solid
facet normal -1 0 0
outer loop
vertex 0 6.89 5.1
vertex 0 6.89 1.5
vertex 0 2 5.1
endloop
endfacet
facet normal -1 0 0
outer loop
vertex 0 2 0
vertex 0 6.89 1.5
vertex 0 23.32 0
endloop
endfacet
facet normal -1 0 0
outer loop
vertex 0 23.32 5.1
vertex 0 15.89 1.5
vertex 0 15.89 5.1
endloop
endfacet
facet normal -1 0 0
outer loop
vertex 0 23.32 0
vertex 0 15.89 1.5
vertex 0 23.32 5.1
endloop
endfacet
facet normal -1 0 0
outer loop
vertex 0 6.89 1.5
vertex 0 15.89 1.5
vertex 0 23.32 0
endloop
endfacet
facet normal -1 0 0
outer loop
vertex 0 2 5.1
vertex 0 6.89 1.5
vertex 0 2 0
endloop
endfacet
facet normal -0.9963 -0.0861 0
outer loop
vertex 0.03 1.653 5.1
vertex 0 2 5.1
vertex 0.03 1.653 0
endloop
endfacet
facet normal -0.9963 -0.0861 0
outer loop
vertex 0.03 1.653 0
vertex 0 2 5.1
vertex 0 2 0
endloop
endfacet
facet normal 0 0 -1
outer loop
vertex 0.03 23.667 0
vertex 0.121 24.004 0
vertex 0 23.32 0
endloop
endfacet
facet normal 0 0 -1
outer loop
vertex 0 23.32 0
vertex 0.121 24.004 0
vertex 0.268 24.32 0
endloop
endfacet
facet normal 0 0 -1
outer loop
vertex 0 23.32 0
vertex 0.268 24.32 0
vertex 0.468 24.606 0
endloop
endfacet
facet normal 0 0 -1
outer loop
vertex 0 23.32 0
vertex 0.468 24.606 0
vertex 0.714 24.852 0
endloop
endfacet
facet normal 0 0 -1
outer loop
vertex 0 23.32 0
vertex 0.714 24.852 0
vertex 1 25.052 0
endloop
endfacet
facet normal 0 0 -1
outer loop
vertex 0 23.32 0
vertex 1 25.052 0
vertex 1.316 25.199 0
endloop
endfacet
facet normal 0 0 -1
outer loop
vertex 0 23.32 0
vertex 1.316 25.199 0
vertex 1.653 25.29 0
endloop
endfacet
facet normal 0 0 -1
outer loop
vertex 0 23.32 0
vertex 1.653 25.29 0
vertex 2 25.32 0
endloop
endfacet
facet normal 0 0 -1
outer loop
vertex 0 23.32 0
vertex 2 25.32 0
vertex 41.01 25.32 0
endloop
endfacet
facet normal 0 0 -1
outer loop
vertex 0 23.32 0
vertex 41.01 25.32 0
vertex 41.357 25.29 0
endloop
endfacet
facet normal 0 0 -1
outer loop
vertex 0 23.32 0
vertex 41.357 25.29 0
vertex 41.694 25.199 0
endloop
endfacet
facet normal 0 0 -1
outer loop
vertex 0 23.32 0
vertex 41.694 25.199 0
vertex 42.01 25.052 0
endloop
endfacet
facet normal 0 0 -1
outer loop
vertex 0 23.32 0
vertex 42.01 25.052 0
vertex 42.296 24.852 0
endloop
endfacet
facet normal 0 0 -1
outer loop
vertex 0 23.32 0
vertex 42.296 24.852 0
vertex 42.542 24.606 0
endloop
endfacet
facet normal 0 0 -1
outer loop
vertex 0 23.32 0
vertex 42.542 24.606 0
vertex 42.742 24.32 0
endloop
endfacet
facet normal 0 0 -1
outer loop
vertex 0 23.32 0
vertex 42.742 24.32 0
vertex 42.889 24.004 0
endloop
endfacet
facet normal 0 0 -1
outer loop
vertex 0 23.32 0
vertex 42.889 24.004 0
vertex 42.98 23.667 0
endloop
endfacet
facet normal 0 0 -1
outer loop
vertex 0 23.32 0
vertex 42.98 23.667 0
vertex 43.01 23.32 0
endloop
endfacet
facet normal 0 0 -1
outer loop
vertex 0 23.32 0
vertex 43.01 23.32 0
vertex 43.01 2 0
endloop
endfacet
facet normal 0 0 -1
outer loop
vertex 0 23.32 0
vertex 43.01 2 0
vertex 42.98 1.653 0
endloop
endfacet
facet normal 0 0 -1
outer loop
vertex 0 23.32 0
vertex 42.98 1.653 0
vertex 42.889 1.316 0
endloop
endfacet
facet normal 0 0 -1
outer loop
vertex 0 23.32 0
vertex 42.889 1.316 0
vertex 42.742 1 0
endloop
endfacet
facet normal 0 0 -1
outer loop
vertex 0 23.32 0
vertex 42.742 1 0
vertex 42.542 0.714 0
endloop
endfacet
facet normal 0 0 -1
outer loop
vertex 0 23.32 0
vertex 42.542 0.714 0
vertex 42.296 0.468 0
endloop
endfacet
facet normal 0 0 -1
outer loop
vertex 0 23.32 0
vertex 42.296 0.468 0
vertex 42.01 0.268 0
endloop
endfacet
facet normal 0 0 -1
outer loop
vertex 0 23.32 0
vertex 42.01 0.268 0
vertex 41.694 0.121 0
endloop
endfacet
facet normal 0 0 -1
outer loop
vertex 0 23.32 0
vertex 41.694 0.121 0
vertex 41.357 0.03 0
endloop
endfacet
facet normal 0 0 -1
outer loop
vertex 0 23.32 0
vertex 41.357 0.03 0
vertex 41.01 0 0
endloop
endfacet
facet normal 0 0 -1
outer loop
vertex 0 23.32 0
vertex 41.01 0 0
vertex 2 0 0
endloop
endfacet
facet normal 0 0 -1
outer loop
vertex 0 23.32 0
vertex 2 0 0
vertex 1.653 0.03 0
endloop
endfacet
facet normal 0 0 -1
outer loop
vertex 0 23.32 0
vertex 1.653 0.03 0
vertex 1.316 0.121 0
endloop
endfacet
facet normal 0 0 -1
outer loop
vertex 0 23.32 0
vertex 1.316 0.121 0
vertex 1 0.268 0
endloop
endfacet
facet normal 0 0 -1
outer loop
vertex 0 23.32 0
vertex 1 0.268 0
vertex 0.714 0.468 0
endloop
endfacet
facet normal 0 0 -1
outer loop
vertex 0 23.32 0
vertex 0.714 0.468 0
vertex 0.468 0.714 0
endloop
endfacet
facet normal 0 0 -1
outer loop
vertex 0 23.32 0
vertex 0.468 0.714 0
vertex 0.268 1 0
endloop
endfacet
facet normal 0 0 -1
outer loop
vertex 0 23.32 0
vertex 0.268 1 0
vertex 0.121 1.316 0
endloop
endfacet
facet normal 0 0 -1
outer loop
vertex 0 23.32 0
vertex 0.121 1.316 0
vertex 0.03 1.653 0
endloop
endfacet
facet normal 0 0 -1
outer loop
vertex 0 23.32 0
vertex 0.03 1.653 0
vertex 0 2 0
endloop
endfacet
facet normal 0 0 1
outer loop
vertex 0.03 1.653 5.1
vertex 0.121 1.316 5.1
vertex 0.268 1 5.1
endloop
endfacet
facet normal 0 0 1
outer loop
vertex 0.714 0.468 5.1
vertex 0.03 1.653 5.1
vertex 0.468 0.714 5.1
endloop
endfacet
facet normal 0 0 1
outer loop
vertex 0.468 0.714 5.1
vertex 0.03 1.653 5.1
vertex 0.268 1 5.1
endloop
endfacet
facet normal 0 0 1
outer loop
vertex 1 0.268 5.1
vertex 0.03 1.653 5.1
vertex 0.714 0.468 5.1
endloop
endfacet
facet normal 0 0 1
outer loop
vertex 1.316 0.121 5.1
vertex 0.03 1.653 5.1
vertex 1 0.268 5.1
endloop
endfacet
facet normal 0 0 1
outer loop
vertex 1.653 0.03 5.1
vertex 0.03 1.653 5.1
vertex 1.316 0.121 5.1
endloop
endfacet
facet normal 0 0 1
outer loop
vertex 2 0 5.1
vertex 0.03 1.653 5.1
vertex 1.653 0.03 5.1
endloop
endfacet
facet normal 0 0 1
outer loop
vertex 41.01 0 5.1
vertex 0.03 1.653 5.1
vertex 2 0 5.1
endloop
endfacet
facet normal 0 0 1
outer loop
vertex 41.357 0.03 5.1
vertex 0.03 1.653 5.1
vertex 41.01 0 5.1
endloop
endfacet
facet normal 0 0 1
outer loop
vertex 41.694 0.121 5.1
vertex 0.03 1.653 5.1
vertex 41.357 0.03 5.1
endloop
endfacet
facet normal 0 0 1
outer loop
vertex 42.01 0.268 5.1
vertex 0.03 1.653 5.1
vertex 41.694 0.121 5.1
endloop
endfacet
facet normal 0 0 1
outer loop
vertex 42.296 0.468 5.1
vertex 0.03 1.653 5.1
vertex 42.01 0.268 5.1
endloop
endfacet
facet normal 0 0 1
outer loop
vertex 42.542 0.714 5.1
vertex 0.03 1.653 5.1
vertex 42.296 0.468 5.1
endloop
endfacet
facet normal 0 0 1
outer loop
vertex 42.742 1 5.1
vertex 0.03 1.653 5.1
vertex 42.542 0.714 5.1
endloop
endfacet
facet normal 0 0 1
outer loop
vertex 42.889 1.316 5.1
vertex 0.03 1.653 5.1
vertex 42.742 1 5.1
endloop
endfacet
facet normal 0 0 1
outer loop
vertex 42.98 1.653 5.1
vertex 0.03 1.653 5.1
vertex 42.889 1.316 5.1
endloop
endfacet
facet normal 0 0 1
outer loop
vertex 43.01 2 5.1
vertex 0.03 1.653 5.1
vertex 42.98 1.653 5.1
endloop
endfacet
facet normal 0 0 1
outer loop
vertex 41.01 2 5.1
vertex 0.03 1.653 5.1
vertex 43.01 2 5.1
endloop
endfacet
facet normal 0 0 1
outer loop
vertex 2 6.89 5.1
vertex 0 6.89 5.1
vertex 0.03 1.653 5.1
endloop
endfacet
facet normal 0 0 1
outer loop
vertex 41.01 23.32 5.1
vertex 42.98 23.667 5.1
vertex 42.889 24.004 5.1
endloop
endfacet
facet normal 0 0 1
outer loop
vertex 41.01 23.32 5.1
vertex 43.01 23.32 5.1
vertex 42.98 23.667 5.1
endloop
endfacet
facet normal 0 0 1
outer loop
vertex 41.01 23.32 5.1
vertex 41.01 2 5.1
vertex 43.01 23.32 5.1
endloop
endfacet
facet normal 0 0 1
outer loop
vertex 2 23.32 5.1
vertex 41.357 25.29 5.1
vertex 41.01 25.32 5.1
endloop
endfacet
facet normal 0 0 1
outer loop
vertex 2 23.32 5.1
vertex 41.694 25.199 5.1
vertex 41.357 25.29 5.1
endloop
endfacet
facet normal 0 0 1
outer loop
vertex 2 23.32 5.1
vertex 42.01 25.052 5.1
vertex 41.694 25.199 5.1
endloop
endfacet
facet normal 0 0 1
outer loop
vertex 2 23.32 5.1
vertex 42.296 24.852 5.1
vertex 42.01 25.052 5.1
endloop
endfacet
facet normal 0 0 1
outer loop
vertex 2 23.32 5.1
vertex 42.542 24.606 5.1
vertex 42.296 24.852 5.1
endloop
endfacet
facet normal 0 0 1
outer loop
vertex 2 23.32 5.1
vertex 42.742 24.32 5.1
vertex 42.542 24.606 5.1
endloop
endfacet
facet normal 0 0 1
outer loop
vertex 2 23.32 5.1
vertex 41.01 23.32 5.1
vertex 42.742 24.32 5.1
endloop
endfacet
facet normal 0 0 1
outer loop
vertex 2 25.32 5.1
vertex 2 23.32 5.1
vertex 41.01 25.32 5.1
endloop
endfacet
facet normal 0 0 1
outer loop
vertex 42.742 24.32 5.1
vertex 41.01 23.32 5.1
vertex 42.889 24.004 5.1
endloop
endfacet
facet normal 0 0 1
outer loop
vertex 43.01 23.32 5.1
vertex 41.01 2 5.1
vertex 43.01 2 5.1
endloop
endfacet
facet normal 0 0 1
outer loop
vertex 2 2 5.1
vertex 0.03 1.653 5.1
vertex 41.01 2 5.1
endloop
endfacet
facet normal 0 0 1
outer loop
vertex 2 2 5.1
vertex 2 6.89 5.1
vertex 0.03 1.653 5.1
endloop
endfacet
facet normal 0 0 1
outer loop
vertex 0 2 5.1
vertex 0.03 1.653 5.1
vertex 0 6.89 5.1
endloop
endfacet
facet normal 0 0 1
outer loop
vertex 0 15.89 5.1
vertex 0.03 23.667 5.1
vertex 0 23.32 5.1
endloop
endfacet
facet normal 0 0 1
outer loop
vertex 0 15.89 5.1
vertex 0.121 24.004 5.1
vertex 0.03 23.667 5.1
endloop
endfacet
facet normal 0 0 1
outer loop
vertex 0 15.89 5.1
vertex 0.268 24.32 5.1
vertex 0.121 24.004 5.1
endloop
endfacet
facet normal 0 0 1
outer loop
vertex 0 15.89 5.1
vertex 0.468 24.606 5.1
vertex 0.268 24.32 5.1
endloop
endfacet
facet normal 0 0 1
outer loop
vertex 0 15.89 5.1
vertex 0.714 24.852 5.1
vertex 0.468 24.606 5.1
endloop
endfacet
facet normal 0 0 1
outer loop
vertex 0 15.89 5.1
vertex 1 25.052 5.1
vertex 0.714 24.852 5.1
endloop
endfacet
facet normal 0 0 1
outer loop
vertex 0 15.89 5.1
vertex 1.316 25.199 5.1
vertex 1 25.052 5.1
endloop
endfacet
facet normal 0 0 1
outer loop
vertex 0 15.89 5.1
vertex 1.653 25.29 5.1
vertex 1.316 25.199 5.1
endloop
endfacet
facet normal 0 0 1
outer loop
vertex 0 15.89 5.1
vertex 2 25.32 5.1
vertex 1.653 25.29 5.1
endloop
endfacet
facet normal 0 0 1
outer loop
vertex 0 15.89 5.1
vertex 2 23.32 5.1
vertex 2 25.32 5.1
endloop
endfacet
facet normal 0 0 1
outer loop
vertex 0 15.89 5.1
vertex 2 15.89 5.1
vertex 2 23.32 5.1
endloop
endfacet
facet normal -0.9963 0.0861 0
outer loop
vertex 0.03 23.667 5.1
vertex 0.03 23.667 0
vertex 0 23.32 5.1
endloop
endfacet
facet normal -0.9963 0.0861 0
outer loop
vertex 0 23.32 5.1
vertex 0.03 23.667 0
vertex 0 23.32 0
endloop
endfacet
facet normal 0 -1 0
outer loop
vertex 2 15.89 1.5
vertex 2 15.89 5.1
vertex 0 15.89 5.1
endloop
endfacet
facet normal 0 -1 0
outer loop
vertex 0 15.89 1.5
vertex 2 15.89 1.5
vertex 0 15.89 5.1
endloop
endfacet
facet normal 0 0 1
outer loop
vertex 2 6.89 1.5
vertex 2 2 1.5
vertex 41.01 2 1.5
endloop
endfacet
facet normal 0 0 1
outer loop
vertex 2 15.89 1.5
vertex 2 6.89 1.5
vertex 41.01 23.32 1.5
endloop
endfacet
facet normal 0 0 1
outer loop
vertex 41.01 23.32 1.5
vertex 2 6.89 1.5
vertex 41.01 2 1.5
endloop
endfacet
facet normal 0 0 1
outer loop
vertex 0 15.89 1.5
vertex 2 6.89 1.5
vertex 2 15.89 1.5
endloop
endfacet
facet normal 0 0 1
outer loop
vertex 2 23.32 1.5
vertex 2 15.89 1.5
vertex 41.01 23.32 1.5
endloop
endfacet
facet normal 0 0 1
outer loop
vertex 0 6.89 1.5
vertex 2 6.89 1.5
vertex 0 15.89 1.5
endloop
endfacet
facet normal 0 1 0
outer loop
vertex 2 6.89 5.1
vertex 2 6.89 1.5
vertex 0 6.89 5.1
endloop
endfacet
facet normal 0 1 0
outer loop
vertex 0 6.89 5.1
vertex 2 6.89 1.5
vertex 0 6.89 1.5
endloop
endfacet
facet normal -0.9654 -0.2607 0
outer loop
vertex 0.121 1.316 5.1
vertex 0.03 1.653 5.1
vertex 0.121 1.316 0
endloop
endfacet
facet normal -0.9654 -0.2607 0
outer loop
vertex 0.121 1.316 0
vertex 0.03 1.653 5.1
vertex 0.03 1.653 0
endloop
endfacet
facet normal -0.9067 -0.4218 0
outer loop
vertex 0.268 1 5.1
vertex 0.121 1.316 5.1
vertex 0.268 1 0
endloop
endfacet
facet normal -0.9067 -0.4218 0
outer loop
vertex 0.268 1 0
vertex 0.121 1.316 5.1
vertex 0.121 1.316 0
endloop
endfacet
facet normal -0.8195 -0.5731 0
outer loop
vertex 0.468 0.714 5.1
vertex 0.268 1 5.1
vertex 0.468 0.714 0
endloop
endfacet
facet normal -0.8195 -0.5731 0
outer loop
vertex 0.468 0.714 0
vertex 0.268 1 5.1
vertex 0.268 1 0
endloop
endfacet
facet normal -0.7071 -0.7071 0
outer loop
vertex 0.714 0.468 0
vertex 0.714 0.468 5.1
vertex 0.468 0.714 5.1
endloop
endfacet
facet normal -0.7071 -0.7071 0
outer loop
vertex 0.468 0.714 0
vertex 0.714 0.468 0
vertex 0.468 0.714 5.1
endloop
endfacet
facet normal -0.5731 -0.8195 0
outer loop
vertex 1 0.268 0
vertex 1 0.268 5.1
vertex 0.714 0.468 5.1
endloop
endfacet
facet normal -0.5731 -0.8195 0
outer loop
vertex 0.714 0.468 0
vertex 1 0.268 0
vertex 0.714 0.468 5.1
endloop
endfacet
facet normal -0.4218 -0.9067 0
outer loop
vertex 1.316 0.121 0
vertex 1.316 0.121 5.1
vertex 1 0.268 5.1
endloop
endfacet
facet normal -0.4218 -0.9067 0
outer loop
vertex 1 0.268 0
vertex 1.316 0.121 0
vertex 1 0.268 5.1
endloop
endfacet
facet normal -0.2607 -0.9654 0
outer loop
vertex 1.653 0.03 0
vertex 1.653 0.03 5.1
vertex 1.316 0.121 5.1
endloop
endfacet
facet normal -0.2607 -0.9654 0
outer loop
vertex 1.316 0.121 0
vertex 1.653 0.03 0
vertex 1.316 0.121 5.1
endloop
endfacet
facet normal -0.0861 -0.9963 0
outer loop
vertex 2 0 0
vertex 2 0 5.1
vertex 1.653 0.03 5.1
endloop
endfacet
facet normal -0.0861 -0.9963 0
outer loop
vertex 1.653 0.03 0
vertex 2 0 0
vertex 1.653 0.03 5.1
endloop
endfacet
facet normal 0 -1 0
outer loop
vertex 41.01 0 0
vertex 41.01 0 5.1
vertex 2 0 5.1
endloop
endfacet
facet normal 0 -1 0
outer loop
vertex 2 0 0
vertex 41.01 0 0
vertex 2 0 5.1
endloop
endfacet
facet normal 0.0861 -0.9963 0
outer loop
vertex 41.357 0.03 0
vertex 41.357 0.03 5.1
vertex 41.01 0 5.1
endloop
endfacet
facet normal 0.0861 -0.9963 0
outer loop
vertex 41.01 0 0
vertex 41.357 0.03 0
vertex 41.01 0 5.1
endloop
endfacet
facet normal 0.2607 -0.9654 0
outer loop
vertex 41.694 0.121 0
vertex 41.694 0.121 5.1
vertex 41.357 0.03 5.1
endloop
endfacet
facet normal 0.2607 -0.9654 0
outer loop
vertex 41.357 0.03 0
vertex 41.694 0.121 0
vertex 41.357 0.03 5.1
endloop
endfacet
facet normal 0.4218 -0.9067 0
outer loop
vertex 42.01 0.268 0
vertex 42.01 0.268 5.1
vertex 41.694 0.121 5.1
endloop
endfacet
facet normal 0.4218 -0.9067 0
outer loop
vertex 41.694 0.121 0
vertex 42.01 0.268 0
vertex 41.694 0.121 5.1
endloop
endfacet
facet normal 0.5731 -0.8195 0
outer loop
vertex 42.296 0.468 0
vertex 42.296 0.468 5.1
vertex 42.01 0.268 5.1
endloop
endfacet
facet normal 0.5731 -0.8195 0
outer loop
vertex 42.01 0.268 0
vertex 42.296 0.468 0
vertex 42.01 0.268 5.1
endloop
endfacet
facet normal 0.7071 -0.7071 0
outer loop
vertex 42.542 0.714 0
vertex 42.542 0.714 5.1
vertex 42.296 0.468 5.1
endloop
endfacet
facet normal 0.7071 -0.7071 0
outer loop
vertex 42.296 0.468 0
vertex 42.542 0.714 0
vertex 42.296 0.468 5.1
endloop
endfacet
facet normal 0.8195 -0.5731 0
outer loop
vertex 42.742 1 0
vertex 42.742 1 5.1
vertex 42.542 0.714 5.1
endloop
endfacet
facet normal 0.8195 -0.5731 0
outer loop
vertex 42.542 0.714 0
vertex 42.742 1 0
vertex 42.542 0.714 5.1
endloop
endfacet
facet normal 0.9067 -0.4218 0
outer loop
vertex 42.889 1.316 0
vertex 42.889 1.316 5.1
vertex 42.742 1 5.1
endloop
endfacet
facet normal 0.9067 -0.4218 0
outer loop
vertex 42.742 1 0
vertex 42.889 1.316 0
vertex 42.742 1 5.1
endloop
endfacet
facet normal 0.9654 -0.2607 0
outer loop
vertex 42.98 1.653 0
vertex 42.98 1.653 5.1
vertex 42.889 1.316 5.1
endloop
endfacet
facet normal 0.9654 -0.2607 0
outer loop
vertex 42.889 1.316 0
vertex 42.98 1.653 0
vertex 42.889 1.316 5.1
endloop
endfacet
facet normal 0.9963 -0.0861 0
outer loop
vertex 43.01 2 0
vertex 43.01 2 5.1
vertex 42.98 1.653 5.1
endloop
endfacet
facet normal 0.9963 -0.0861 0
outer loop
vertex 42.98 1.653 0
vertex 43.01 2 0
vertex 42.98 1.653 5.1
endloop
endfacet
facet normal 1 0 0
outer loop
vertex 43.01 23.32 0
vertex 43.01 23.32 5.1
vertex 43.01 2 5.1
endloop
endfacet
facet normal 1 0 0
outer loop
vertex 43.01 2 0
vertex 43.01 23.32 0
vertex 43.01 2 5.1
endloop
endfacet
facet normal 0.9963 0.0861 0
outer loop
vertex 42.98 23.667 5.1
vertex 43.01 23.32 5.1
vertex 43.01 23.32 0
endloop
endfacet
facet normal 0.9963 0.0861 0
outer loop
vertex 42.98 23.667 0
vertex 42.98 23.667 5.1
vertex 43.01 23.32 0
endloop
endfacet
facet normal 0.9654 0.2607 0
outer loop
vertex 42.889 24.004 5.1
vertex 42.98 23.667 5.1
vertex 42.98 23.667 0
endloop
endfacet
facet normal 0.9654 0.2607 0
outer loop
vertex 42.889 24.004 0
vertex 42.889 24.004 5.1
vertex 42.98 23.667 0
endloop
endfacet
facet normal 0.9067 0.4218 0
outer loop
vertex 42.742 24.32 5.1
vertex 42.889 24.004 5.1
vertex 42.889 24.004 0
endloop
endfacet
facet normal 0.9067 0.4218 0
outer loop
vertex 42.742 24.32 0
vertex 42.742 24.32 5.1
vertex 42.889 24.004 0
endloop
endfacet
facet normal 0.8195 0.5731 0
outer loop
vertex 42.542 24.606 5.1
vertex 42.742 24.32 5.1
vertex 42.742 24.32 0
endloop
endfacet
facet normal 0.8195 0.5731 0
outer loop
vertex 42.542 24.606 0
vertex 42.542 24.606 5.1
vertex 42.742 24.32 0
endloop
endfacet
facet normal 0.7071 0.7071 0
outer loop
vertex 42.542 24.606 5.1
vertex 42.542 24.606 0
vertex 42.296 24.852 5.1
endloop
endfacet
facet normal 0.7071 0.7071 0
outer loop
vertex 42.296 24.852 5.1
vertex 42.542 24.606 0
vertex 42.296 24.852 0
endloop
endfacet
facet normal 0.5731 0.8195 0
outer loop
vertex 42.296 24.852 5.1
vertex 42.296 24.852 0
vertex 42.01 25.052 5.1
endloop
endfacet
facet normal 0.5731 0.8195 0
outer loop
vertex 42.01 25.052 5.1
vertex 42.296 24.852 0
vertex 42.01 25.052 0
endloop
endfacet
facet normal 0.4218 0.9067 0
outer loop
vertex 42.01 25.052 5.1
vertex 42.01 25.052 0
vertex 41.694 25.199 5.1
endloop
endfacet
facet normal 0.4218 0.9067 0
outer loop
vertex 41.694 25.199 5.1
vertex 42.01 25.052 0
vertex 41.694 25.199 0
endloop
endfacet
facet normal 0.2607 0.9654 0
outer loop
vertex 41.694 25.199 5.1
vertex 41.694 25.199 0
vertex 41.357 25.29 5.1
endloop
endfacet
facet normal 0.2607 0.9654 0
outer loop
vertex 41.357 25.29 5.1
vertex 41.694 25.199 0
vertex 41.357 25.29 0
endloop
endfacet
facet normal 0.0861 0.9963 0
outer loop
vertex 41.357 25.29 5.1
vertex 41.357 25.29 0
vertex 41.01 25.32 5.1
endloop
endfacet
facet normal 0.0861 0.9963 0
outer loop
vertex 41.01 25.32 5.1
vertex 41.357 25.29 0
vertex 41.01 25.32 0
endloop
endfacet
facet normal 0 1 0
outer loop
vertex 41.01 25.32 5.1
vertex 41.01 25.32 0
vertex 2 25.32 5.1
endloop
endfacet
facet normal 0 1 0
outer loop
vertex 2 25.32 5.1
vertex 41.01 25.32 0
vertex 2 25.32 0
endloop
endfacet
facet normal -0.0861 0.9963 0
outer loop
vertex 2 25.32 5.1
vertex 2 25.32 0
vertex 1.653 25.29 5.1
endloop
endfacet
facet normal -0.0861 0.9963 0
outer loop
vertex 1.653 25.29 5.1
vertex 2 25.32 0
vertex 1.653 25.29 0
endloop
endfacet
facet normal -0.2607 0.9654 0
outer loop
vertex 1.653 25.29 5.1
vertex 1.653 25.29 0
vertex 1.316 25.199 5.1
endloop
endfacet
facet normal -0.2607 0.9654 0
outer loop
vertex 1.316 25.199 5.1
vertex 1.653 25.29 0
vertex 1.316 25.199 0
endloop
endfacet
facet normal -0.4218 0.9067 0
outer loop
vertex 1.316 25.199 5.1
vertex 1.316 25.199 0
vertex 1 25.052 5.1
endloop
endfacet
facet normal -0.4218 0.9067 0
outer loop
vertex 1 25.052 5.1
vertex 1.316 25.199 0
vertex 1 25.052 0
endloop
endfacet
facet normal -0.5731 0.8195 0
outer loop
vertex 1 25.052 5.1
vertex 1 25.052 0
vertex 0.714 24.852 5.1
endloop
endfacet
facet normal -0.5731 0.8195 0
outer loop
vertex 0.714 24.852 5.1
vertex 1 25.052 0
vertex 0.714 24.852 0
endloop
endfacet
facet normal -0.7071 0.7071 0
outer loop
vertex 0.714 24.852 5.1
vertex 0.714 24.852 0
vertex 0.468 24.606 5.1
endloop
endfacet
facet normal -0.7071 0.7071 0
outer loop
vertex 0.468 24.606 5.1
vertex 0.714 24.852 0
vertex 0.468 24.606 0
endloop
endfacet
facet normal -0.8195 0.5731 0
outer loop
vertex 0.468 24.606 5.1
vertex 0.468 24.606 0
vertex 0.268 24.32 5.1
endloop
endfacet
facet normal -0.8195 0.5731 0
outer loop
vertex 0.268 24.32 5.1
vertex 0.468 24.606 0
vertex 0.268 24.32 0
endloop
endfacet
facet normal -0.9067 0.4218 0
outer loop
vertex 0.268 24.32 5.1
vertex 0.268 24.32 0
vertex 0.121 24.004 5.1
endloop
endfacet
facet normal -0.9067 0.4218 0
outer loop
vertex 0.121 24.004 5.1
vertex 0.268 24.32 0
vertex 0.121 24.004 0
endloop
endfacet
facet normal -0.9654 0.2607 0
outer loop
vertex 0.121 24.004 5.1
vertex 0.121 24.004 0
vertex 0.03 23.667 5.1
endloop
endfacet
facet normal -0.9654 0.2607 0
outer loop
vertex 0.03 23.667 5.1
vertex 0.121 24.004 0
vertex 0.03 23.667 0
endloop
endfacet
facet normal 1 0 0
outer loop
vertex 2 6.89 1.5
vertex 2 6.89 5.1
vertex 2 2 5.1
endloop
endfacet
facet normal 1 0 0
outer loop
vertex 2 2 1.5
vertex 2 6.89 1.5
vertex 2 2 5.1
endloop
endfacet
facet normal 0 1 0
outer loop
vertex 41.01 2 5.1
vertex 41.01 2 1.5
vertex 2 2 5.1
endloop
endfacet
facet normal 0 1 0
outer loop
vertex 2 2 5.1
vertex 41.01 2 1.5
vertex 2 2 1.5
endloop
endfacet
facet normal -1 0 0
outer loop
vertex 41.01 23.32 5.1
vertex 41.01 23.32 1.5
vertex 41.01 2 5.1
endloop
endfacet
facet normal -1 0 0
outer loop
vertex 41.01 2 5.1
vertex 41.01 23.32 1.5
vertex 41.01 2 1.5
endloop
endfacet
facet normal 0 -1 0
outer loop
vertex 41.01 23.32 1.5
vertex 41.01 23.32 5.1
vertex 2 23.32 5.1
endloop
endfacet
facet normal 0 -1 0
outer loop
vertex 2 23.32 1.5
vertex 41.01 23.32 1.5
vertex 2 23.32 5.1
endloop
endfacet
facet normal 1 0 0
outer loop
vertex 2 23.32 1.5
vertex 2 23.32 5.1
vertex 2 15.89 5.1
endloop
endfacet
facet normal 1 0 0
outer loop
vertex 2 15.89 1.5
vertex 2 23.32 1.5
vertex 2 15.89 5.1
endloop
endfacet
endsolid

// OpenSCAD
// See OpenSCAD documentation at 
// http://en.wikibooks.org/wiki/OpenSCAD_User_Manual/The_OpenSCAD_Language
//
// A simple 3D printed case for Arm Pro Mini. Board can be mounted to the
// bottom of the case with 3M Mounting Tape.
//
// All dimensions are in mm.

$fn=36;

// Length (along x axis).
board_len = 38.01;  
// Width (along y axis)
board_width = 20.32;  
// PCB thicknes.
board_thickness = 1.6;  
// Free marging aroudn the pcb.
board_margin = 0.5; 
// Width of box's wall.
wall_width = 2;  
// Radius of four box corners.
corner_radius = wall_width; 
// Thickness of the bottom.
bottom_height = 1.5; 
// Free space to leave below the PCB (for double side tape).
space_below_board = 1;
// Free space to leave above the PCB. If too high it makes it difficult
// to press the reset and ISP buttons.
space_above_board = 1;
// Width of opening for USB connector.
port_width = 9;
// Offset of USB connector center from board's center.
port_offset_from_center = 1.27;
// Distance from top of base to the bottom of the port opening. Leaving
// this as zero makes it easier to prey out the board if needed.
port_offset_from_base = 0;

// Derived dimensions
//
box_len = 2*wall_width + 2*board_margin + board_len;
box_width = 2*wall_width + 2*board_margin + board_width;
box_height = bottom_height + space_below_board + space_above_board + board_thickness;

echo("Box size, len: ", box_len, ", width: ", box_width, ", height: ", box_height);

// A small, >0 value for well define relations between objects.
// Does not affect generated box.
eps=0.01;
eps2 = 2*eps;

module solid_box(x, y, z, xlen, ylen, zlen) {
 translate([x, y, z]) 
 cube([xlen, ylen, zlen]); 
}

module rounded_solid_box(x, y, z, xlen, ylen, zlen, r) {
  translate([x+r, y+r, z]) minkowski() {
    cube([xlen-2*r, ylen-2*r, zlen/2]);
    cylinder(r=r, h=zlen/2);
 }
}

module main_part() {
  difference() {
    // Overall box.
    rounded_solid_box(0, 0, 0, 
        box_len, box_width, box_height, corner_radius);
    // Remove inner space.
    solid_box(wall_width, wall_width, bottom_height, 
        box_len-2*wall_width, 
        box_width-2*wall_width, 
        box_height);
    // Remove opening for USB connector.
    solid_box(-eps, 
        box_width/2-port_offset_from_center - port_width/2, 
        bottom_height + port_offset_from_base, 
        wall_width + eps2, port_width, box_height);
  }
}

main_part();
